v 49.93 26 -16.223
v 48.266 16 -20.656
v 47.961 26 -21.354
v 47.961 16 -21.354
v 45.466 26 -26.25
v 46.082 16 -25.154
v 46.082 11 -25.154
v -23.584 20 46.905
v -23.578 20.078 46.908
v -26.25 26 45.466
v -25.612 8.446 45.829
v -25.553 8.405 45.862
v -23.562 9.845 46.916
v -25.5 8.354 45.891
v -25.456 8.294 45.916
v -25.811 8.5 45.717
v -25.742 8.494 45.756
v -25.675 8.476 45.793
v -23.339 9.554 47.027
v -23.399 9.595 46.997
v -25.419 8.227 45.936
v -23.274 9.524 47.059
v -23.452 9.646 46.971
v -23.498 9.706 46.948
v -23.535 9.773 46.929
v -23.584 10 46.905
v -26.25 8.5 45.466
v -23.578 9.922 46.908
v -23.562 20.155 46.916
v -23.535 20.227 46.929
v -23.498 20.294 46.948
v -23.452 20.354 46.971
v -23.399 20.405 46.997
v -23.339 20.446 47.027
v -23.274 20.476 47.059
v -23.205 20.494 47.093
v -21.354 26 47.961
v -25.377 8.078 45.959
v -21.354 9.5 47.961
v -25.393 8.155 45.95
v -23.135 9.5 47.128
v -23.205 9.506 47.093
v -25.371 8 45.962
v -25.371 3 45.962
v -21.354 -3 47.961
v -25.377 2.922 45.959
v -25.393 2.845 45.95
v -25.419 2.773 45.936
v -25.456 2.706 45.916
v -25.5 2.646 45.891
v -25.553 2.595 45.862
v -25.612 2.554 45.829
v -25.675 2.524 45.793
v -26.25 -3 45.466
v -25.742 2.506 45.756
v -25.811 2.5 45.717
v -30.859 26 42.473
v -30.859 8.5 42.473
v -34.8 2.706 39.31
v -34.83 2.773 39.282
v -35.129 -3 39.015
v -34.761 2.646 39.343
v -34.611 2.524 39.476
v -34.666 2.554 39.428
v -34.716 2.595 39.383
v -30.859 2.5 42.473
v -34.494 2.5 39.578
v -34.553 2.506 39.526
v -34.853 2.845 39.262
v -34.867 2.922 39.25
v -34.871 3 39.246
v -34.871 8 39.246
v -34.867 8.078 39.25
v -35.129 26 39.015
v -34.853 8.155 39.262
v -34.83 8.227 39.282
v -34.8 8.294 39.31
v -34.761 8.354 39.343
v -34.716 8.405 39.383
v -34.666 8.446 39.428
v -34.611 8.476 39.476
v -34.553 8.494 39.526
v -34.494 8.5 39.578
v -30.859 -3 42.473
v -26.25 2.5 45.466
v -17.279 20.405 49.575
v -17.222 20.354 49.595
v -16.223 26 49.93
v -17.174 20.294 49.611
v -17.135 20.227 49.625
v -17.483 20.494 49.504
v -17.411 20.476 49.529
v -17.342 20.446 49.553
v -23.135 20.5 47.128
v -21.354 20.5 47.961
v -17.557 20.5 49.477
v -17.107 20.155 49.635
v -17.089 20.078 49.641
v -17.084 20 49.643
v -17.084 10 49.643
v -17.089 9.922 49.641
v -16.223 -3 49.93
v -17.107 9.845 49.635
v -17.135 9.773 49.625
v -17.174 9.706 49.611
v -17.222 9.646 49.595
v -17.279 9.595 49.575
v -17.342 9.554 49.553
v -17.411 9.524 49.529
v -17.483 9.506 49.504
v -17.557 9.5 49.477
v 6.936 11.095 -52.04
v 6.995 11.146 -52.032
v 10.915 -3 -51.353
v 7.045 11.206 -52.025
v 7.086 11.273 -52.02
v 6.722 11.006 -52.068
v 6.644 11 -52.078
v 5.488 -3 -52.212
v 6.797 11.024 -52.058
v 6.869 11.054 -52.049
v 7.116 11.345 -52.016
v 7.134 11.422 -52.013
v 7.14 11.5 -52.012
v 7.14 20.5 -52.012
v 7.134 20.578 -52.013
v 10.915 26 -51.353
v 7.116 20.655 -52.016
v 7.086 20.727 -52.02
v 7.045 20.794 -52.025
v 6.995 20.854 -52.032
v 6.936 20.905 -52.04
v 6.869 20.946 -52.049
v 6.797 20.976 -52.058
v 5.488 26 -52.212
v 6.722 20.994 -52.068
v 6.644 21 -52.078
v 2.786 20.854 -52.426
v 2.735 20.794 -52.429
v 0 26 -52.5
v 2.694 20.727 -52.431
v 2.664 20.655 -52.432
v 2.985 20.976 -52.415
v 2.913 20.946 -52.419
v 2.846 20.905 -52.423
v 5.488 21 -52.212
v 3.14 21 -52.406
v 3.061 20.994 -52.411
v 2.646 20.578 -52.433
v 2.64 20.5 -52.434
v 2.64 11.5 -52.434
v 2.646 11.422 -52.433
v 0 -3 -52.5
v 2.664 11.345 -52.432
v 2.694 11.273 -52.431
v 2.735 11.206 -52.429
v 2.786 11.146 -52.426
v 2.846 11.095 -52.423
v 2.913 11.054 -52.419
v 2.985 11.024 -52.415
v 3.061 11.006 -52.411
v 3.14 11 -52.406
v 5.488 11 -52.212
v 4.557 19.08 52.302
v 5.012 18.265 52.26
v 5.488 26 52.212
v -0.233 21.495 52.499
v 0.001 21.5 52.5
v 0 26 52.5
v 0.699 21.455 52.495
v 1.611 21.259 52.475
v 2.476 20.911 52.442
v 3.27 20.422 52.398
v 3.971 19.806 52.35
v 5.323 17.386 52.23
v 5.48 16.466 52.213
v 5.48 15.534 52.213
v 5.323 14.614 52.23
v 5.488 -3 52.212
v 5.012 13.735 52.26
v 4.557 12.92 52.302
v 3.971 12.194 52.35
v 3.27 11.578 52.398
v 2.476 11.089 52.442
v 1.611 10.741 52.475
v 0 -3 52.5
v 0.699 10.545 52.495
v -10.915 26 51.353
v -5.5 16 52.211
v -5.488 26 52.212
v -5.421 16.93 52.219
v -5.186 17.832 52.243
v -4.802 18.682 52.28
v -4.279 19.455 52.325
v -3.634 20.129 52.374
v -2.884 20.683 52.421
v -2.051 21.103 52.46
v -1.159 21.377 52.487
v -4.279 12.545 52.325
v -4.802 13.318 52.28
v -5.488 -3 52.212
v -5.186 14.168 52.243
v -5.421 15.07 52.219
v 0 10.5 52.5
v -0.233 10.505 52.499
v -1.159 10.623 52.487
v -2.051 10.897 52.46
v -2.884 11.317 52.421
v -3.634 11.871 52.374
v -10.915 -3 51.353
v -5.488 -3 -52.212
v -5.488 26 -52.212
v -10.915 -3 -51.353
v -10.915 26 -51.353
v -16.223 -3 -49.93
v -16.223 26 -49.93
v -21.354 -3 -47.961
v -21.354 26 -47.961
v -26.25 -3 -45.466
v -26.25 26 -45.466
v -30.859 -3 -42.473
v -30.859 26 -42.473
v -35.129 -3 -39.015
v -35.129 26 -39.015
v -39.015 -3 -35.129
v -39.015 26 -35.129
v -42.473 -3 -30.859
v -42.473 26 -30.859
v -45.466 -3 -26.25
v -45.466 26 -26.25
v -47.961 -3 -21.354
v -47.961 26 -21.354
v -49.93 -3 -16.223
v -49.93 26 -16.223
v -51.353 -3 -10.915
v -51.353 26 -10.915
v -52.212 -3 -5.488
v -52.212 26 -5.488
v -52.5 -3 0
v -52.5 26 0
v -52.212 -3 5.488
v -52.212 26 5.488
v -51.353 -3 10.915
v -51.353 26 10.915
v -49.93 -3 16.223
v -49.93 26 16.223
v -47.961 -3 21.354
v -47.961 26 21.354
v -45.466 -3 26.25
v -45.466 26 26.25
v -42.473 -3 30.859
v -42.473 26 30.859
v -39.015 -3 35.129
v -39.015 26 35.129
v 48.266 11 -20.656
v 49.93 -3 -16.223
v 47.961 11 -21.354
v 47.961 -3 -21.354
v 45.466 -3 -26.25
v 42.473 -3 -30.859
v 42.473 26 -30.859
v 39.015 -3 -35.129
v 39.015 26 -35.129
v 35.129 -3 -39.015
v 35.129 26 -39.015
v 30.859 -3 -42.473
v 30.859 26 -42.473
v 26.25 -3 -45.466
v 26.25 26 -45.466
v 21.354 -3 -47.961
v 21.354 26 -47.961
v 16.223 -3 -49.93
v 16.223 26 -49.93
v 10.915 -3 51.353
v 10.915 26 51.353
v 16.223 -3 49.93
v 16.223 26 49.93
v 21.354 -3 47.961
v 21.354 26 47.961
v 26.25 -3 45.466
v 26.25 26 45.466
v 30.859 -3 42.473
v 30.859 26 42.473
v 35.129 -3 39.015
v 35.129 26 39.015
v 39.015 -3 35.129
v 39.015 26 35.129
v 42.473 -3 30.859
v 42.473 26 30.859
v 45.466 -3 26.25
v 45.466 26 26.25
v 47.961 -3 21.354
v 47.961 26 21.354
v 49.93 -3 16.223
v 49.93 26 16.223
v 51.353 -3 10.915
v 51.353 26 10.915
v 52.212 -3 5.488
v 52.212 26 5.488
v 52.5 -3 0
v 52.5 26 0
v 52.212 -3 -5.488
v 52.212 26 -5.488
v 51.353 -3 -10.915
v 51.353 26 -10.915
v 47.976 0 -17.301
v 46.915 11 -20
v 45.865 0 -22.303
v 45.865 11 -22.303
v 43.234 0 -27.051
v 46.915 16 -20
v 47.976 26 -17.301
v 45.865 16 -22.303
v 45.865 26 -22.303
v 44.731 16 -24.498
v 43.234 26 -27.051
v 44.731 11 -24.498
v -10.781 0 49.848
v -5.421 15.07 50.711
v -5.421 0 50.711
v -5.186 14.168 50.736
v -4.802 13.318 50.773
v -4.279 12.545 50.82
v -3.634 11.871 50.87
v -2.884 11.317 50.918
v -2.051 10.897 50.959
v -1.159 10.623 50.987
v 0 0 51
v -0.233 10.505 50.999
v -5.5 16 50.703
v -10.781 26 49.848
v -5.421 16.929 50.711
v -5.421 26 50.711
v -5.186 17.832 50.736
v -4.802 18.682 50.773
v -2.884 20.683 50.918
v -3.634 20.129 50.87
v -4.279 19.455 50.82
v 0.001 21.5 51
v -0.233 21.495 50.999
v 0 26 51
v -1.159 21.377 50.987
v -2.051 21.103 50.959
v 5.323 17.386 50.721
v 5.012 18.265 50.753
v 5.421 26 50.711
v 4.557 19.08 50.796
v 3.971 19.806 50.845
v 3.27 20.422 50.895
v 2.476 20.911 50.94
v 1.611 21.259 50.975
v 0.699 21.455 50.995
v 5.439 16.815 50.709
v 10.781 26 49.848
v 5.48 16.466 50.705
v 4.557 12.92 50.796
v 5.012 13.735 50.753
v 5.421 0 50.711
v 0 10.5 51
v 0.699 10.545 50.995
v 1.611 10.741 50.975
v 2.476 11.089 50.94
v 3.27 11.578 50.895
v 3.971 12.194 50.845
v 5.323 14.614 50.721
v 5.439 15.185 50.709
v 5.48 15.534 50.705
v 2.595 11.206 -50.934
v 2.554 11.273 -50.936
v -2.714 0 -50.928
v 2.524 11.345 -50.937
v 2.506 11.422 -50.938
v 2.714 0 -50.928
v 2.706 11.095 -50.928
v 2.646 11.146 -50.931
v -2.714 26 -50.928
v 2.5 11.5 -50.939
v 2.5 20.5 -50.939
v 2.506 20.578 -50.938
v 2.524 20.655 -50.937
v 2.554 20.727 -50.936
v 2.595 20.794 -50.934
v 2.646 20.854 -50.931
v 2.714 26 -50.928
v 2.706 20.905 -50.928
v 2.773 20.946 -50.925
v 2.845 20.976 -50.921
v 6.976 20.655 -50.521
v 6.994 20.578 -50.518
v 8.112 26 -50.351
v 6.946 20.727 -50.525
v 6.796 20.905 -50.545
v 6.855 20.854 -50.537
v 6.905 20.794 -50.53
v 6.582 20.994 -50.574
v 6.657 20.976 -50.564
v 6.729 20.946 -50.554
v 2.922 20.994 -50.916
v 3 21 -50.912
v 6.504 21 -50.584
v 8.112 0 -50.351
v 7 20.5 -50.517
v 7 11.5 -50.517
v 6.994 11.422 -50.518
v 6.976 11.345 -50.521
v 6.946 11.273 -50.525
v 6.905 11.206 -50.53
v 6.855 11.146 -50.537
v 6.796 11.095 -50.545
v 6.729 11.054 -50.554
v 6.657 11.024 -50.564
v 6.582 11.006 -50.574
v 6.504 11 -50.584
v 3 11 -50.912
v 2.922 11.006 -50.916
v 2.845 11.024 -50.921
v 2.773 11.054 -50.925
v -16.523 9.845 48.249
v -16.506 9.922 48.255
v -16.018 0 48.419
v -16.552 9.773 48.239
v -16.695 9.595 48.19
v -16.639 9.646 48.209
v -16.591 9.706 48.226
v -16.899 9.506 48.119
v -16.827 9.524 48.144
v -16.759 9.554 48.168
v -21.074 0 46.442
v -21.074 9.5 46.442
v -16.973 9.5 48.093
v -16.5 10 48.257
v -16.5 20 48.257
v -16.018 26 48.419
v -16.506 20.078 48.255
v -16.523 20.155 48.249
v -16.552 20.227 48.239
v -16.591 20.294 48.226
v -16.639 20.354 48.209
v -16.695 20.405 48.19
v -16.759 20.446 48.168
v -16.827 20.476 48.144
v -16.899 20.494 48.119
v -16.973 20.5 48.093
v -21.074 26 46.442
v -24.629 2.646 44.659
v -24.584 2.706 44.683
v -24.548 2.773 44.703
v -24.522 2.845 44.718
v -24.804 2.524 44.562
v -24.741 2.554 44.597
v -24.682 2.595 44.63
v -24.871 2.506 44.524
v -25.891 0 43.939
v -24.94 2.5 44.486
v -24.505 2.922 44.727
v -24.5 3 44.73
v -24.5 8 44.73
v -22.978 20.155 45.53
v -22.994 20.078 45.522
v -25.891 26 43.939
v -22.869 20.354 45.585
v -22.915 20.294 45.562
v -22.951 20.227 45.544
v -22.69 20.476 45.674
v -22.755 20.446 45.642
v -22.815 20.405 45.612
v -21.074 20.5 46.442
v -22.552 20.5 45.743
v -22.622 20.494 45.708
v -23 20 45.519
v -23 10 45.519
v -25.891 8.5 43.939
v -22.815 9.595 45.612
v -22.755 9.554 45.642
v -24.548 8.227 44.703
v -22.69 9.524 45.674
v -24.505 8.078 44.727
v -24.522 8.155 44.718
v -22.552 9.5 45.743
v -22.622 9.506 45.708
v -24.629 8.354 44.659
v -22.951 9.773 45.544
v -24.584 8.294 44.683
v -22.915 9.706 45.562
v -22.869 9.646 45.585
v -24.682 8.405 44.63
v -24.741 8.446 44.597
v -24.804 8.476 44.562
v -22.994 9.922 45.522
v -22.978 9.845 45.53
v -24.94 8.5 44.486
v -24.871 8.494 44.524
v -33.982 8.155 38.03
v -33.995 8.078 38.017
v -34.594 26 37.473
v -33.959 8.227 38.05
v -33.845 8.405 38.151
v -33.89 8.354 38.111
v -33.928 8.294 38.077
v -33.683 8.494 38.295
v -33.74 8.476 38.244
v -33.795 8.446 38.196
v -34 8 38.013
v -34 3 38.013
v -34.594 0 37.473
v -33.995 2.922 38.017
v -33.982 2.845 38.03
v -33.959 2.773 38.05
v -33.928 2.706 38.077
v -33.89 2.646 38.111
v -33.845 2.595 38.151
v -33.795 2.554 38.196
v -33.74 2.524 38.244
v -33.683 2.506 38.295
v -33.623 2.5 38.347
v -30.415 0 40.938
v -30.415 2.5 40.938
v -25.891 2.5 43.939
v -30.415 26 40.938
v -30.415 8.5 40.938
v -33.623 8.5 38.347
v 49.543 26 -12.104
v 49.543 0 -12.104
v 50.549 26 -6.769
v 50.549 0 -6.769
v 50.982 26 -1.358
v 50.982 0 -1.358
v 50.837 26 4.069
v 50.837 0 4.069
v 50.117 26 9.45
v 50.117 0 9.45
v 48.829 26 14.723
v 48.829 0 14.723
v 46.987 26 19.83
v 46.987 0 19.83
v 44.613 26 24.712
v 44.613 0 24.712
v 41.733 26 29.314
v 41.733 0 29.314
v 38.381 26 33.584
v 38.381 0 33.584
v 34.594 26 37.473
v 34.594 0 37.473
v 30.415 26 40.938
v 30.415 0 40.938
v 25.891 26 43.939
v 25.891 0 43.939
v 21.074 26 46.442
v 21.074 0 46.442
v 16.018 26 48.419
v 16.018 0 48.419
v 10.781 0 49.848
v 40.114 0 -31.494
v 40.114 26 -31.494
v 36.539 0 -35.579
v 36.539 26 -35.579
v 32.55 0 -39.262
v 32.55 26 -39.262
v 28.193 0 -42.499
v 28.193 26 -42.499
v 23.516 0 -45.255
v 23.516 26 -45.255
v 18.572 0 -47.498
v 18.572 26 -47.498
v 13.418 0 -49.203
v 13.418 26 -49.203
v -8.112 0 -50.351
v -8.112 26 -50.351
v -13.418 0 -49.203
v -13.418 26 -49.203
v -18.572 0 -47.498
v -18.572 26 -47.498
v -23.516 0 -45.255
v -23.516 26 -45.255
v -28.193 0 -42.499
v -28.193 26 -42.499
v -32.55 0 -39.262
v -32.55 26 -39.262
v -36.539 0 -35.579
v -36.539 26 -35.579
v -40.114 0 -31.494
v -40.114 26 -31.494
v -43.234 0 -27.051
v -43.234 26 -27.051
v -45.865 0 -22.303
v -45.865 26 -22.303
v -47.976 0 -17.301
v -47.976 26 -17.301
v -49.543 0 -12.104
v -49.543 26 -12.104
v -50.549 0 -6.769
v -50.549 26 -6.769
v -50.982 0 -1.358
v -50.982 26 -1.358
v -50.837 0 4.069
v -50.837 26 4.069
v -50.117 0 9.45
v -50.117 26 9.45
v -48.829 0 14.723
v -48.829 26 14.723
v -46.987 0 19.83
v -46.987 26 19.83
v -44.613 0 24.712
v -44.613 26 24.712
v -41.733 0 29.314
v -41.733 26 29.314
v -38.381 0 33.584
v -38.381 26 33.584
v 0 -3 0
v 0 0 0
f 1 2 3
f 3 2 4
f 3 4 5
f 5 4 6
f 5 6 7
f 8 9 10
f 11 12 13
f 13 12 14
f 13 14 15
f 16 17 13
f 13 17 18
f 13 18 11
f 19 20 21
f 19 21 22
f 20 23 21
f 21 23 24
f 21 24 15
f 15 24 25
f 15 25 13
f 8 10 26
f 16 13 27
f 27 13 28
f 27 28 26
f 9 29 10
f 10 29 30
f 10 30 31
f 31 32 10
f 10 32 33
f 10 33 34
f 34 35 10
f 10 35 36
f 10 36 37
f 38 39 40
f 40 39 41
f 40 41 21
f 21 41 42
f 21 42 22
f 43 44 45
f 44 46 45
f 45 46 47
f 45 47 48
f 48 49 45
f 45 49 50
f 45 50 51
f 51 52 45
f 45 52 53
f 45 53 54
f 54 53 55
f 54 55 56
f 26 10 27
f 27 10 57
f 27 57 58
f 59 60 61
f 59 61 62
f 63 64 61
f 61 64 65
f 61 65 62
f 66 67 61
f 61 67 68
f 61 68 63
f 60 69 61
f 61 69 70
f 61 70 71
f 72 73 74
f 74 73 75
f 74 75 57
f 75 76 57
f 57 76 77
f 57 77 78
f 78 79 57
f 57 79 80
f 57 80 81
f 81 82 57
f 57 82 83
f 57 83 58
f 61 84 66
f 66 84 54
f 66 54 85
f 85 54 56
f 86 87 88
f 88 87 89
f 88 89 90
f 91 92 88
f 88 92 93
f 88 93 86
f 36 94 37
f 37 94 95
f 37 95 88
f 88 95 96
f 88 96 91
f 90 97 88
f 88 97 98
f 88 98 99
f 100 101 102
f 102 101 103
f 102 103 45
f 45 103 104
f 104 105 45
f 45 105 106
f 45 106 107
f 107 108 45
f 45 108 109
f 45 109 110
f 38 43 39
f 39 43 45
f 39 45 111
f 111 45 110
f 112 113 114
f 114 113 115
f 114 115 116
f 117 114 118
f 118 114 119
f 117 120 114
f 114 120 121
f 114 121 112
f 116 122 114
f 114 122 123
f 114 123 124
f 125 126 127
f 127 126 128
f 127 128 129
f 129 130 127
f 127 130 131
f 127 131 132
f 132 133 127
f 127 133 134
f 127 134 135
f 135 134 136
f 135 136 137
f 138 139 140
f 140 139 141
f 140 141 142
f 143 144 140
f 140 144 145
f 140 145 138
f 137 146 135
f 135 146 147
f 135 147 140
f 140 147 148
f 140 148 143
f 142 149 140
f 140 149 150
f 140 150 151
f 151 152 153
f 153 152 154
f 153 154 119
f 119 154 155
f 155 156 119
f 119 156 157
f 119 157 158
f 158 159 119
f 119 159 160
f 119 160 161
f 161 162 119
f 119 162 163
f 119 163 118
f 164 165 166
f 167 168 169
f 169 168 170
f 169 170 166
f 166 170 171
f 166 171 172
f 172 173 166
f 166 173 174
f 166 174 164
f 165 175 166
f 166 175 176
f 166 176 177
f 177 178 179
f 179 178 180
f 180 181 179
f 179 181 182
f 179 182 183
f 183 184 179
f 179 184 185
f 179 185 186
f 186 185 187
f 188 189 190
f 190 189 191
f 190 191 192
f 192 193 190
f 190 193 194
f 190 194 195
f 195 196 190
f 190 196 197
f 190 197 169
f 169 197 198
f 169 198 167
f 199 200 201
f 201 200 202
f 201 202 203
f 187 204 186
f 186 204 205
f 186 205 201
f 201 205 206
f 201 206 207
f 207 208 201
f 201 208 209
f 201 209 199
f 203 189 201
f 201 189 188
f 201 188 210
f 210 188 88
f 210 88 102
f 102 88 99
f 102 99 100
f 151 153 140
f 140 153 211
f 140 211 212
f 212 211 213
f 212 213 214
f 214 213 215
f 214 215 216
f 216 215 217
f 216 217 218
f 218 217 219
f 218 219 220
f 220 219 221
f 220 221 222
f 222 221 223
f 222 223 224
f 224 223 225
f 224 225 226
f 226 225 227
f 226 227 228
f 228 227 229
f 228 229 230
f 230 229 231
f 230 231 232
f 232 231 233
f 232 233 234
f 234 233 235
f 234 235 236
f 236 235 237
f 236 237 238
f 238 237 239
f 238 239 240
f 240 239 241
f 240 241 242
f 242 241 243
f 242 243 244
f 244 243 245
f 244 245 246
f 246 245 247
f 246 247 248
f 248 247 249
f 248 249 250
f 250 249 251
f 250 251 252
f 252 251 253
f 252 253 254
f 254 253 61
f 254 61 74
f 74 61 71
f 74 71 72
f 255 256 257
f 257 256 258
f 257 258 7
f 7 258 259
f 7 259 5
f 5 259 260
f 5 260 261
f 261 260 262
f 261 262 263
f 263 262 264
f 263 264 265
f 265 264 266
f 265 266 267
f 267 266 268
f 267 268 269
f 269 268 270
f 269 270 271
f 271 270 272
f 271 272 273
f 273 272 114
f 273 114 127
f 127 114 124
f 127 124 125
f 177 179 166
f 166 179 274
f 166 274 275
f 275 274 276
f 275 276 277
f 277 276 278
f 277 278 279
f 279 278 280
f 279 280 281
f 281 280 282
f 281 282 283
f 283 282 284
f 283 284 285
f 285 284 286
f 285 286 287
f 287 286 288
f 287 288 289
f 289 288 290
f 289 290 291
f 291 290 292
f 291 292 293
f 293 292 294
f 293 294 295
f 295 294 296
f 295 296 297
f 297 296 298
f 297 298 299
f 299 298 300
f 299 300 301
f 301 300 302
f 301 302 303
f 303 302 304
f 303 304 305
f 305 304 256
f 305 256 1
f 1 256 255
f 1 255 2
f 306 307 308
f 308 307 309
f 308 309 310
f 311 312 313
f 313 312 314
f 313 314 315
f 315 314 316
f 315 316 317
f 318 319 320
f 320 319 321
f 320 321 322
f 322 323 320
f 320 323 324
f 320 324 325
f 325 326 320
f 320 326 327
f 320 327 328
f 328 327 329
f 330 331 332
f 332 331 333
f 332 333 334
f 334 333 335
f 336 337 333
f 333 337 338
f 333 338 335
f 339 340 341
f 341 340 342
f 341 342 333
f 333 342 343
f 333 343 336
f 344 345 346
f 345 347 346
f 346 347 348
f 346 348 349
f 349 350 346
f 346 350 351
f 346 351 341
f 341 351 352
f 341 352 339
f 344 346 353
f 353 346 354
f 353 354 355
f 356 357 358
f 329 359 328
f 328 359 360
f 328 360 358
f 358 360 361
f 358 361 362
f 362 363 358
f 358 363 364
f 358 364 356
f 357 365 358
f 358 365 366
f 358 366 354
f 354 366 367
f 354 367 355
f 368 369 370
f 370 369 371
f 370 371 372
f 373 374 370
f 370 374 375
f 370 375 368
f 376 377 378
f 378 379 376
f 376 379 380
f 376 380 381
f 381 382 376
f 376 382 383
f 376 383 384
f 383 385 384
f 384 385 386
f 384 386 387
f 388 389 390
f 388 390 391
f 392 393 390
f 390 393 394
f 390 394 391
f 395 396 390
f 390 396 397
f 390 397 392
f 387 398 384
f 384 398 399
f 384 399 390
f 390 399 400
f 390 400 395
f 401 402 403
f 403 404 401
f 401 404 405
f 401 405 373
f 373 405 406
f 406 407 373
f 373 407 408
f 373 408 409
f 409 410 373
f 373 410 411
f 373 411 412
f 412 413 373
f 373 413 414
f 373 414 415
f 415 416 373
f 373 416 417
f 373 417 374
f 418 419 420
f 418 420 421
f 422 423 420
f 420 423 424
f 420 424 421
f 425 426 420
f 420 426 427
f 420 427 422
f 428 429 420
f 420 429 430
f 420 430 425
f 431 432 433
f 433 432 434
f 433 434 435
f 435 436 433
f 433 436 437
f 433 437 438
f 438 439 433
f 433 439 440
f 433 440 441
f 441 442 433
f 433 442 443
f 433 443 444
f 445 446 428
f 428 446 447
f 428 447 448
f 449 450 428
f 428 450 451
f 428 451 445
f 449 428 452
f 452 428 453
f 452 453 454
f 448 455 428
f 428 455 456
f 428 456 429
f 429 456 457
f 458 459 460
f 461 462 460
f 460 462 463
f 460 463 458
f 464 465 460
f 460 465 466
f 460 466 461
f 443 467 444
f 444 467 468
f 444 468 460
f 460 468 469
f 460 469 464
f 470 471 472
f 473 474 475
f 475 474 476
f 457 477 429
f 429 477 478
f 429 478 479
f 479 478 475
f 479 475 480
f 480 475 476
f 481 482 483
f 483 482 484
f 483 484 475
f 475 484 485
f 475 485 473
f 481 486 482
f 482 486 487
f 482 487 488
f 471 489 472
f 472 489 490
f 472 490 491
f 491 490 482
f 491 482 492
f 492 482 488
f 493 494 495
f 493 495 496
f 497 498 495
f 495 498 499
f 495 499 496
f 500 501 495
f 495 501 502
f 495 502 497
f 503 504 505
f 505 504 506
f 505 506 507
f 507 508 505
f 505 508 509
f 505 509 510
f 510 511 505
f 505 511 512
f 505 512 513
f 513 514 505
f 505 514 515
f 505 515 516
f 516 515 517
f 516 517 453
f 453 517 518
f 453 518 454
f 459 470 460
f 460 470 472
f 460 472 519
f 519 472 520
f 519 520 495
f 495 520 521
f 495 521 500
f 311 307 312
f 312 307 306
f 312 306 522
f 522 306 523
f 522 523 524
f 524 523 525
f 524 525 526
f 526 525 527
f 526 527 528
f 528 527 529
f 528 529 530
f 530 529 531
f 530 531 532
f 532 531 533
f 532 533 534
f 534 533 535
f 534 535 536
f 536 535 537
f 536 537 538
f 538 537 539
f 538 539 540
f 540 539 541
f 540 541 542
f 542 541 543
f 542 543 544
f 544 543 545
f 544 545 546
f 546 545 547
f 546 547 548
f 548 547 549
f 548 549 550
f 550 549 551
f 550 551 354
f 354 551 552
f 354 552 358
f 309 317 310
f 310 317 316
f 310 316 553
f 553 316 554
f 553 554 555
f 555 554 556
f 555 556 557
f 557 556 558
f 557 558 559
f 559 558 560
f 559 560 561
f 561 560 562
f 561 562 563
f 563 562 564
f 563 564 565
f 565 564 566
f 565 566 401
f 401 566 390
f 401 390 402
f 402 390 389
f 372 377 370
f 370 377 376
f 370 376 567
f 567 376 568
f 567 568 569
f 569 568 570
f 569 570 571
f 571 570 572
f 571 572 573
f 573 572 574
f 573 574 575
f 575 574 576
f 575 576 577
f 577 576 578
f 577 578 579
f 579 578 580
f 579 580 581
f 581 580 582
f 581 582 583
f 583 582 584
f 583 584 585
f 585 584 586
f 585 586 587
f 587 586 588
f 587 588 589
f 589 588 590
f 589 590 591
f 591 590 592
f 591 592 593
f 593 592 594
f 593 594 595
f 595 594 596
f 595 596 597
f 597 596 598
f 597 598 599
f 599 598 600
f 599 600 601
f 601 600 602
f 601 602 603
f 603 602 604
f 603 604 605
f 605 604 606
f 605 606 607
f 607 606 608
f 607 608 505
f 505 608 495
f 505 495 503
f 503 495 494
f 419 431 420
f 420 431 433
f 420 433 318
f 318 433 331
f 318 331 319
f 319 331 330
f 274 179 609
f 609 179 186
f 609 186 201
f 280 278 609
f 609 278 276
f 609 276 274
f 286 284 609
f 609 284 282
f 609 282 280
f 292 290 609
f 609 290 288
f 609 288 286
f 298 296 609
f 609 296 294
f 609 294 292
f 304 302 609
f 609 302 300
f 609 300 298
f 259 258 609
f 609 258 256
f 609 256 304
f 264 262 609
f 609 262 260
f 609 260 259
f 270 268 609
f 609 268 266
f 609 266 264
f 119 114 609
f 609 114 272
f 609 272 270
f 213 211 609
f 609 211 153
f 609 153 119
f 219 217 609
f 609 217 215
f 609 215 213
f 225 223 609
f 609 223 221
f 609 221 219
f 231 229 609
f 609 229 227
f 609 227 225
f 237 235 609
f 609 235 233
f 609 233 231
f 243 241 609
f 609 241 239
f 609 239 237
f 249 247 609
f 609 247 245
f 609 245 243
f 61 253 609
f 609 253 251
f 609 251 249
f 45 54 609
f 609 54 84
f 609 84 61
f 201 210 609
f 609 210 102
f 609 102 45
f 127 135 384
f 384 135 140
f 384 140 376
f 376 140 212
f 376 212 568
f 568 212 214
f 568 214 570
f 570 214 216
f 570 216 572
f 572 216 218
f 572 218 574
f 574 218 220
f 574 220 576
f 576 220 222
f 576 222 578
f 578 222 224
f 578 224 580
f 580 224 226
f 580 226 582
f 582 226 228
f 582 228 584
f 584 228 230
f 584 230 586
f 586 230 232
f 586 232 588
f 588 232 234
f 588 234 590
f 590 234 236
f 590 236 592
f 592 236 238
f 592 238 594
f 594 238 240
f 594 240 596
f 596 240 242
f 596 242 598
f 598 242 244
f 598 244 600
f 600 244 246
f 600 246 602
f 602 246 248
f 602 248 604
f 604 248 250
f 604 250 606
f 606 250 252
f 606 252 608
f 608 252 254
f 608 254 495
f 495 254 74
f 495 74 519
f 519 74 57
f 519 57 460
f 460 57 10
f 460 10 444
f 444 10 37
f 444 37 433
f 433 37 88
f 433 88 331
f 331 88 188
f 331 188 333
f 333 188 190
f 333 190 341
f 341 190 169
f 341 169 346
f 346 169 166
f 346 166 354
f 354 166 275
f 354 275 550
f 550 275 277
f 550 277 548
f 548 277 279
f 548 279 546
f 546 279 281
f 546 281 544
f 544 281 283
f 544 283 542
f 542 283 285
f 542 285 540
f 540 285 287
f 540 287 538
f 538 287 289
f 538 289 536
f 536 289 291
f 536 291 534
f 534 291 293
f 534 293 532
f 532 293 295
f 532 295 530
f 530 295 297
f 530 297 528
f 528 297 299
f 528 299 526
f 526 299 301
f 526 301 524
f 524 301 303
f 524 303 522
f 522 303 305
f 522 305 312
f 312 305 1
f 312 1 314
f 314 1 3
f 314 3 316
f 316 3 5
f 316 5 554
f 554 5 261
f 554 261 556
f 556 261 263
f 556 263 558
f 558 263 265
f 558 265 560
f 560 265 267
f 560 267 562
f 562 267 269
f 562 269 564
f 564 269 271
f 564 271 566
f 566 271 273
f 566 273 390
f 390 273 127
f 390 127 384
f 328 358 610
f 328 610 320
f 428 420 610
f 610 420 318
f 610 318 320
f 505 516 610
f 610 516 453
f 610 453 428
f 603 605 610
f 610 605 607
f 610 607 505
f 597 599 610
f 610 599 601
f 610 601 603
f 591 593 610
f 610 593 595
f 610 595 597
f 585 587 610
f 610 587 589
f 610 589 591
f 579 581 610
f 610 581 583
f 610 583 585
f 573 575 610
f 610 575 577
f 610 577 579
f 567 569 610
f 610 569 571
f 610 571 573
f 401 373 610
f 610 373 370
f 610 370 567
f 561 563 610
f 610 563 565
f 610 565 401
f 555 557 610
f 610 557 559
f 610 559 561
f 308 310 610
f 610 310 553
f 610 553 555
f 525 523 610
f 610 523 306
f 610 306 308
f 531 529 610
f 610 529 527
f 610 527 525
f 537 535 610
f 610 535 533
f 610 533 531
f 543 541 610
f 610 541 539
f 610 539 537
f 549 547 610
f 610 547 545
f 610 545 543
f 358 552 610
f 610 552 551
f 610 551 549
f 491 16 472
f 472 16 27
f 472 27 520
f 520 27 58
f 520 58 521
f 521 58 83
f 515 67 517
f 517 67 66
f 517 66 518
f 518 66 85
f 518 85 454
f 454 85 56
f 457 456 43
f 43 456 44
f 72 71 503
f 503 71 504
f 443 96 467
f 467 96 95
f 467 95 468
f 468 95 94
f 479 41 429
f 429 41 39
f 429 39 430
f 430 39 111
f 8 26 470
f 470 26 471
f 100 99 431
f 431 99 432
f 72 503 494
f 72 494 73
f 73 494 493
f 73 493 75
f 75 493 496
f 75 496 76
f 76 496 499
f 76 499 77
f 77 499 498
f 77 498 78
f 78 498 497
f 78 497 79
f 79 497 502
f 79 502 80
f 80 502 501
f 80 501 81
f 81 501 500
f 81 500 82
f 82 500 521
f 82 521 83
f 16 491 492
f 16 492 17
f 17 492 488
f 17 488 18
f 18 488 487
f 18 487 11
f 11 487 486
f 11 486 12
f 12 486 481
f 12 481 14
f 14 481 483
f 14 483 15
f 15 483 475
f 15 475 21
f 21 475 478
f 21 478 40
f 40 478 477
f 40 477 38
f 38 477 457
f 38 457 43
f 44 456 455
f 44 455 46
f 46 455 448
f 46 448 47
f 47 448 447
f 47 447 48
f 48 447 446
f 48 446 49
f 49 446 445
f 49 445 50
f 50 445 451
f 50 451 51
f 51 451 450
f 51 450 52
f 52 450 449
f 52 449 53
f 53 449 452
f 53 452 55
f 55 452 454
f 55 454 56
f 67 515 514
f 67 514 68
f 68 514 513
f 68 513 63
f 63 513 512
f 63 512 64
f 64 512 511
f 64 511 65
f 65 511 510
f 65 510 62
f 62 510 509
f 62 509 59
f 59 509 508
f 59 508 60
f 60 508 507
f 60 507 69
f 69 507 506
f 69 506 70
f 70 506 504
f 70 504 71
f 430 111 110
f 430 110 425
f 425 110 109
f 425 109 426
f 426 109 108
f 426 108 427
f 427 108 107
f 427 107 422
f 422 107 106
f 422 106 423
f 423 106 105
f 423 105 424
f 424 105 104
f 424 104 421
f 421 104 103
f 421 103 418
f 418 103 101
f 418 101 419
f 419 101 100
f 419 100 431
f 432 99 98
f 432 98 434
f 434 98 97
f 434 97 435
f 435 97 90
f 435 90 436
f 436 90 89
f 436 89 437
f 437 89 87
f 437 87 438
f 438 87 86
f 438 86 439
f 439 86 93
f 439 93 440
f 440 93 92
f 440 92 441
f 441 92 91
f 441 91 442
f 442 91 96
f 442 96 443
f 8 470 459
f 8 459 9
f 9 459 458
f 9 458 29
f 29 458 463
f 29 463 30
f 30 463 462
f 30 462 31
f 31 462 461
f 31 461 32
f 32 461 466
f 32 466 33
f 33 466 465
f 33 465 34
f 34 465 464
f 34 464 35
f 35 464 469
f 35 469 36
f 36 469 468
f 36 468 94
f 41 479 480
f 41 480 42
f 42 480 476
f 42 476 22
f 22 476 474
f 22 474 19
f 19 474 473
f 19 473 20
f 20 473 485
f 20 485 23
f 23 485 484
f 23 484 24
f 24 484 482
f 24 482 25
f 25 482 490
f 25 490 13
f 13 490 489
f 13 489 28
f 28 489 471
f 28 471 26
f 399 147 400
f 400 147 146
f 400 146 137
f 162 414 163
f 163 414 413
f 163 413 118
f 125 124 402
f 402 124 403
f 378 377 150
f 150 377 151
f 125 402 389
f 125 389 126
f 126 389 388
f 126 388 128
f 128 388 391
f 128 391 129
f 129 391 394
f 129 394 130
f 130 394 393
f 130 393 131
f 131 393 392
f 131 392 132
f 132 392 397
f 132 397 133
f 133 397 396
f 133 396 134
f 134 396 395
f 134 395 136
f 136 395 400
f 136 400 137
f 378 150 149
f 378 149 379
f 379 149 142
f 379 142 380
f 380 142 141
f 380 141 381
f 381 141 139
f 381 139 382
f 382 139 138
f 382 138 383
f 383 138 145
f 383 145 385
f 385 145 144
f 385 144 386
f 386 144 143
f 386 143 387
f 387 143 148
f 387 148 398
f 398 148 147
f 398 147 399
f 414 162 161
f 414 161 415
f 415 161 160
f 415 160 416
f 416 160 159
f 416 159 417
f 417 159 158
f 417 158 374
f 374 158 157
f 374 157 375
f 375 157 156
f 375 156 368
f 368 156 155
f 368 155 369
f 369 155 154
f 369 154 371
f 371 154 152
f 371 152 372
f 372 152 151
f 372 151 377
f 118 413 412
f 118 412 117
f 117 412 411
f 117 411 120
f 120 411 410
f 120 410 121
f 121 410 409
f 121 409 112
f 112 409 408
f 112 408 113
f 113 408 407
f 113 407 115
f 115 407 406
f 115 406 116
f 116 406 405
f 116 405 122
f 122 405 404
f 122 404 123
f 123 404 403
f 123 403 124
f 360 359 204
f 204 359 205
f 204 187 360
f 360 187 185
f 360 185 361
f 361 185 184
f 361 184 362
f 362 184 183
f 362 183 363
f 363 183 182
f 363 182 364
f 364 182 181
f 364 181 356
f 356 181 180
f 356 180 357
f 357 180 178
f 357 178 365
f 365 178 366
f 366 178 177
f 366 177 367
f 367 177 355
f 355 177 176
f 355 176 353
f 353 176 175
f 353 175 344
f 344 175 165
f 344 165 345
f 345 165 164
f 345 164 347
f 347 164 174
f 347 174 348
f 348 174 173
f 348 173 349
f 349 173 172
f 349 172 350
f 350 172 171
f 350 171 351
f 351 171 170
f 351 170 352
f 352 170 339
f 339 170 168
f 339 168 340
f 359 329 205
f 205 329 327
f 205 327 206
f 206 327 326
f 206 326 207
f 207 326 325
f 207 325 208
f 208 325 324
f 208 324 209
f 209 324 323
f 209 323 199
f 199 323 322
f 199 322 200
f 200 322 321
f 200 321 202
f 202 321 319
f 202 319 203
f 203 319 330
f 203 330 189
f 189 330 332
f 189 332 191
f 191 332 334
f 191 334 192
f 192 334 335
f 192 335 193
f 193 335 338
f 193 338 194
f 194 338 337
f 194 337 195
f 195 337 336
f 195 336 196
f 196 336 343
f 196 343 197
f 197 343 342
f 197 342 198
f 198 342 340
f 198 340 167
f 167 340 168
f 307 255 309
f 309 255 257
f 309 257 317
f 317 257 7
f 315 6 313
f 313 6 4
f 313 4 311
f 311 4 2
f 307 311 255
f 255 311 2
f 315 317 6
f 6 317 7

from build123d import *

# Parameters (mm, degrees)
P_IDAT_VYSUNUT_M1_DEPTH      = 26
P_IDAT_VYSUNUT_M1_DEPTH_BACK = 3
SKICA1_R                     = 52.5
SKICA1_R_2                   = 51
SKICA1_3_R                   = 51
P_IDAT_VYSUNUT_M3_DEPTH      = 3
ODEBRAT_START                = 2.5
ODEBRAT_VYSUNUT_M1_DEPTH     = 6
ODEBRAT_START_2              = 9.5
ODEBRAT_VYSUNUT_M2_DEPTH     = 11
ZAOBLIT1_R                   = 0.5
ZAOBLIT2_R                   = 0.5
ODEBRAT_START_3              = 11
ODEBRAT_VYSUNUT_M3_DEPTH     = 10
ZAOBLIT3_R                   = 0.5
SKICA6_W                     = 5.5
SKICA6_H                     = 2.5
ODEBRAT_VYSUNUT_M4_DEPTH     = 5


with BuildPart() as part:
    # Skica1 → P_idat vysunut_m1 (new, two sides: drawn at the far end of the back side and taken through both)
    with BuildSketch(Plane(origin=(0, 0, 0), x_dir=(1, 0, 0), z_dir=(0, 1, 0)).offset(-P_IDAT_VYSUNUT_M1_DEPTH_BACK)):
        Circle(SKICA1_R)
        Circle(SKICA1_R_2, mode=Mode.SUBTRACT)
    extrude(amount=P_IDAT_VYSUNUT_M1_DEPTH + P_IDAT_VYSUNUT_M1_DEPTH_BACK)

    # Skica1_3 → P_idat vysunut_m3 (add)
    with BuildSketch(Plane(origin=(0, 0, 0), x_dir=(1, 0, 0), z_dir=(0, 1, 0))):
        Circle(SKICA1_3_R)
    extrude(amount=-P_IDAT_VYSUNUT_M3_DEPTH)

    # Skica3 → Odebrat vysunut_m1 (cut)
    with BuildSketch(Plane(origin=(0, 0, 0), x_dir=(1, 0, 0), z_dir=(0, 1, 0)).offset(ODEBRAT_START)):
        Polygon((-24.5, -44.729744019), (-25.943243016, -46.771079267), (-35.443243016, -40.054490866), (-34, -38.013155617), align=None)
    extrude(amount=ODEBRAT_VYSUNUT_M1_DEPTH, mode=Mode.SUBTRACT)

    # Skica4 → Odebrat vysunut_m2 (cut)
    with BuildSketch(Plane(origin=(0, 0, 0), x_dir=(1, 0, 0), z_dir=(0, 1, 0)).offset(ODEBRAT_START_2)):
        Polygon((-16.5, -48.257123826), (-17.470460132, -50.561078499), (-23.970460132, -47.823181379), (-23, -45.519226707), align=None)
    extrude(amount=ODEBRAT_VYSUNUT_M2_DEPTH, mode=Mode.SUBTRACT)

    # Zaoblit1
    zaoblit1_edges = [part.edges().sort_by_distance(p)[0] for p in [
        (-34.435735274, 8.5, 38.629463311),
        (-24.935735274, 8.5, 45.346051713),
        (-24.935735274, 2.5, 45.346051713),
        (-34.435735274, 2.5, 38.629463311),
    ]]
    fillet(zaoblit1_edges, radius=ZAOBLIT1_R)

    # Zaoblit2
    zaoblit2_edges = [part.edges().sort_by_distance(p)[0] for p in [
        (-16.791816548, 9.5, 48.949921063),
        (-16.791816548, 20.5, 48.949921063),
        (-23.291816548, 20.5, 46.212023944),
        (-23.291816548, 9.5, 46.212023944),
    ]]
    fillet(zaoblit2_edges, radius=ZAOBLIT2_R)

    # Skica5 → Odebrat vysunut_m3 (cut)
    with BuildSketch(Plane(origin=(0, 0, 0), x_dir=(1, 0, 0), z_dir=(0, 1, 0)).offset(ODEBRAT_START_3)):
        Polygon((2.5, 50.938688636), (2.734091597, 53.438688636), (7.234091597, 53.017323761), (7, 50.517323761), align=None)
    extrude(amount=ODEBRAT_VYSUNUT_M3_DEPTH, mode=Mode.SUBTRACT)

    # Zaoblit3
    zaoblit3_edges = [part.edges().sort_by_distance(p)[0] for p in [
        (7.069988396, 21, -51.264770449),
        (2.569988396, 21, -51.686135324),
        (2.569988396, 11, -51.686135324),
        (7.069988396, 11, -51.264770449),
    ]]
    fillet(zaoblit3_edges, radius=ZAOBLIT3_R)

    # Skica6 → Odebrat rotac_1 (revolve, cut)
    with BuildSketch(Plane(origin=(0, 16, 0), x_dir=(1, 0, 0), z_dir=(0, 1, 0))):
        with Locations((-2.75, -51.25)):
            Rectangle(SKICA6_W, SKICA6_H)
    revolve(axis=Axis((0, 16, -58.211377778), (0, 0, 1)), mode=Mode.SUBTRACT)

    # Skica7 → Odebrat vysunut_m4 (cut)
    with BuildSketch(Plane(origin=(0, 16, 0), x_dir=(1, 0, 0), z_dir=(0, 1, 0))):
        Polygon((46.914816423, 20), (44.730924047, 24.497845494), (46.979846795, 25.589791682), (49.16373917, 21.091946188), align=None)
    extrude(amount=-ODEBRAT_VYSUNUT_M4_DEPTH, mode=Mode.SUBTRACT)


solid = part.part
